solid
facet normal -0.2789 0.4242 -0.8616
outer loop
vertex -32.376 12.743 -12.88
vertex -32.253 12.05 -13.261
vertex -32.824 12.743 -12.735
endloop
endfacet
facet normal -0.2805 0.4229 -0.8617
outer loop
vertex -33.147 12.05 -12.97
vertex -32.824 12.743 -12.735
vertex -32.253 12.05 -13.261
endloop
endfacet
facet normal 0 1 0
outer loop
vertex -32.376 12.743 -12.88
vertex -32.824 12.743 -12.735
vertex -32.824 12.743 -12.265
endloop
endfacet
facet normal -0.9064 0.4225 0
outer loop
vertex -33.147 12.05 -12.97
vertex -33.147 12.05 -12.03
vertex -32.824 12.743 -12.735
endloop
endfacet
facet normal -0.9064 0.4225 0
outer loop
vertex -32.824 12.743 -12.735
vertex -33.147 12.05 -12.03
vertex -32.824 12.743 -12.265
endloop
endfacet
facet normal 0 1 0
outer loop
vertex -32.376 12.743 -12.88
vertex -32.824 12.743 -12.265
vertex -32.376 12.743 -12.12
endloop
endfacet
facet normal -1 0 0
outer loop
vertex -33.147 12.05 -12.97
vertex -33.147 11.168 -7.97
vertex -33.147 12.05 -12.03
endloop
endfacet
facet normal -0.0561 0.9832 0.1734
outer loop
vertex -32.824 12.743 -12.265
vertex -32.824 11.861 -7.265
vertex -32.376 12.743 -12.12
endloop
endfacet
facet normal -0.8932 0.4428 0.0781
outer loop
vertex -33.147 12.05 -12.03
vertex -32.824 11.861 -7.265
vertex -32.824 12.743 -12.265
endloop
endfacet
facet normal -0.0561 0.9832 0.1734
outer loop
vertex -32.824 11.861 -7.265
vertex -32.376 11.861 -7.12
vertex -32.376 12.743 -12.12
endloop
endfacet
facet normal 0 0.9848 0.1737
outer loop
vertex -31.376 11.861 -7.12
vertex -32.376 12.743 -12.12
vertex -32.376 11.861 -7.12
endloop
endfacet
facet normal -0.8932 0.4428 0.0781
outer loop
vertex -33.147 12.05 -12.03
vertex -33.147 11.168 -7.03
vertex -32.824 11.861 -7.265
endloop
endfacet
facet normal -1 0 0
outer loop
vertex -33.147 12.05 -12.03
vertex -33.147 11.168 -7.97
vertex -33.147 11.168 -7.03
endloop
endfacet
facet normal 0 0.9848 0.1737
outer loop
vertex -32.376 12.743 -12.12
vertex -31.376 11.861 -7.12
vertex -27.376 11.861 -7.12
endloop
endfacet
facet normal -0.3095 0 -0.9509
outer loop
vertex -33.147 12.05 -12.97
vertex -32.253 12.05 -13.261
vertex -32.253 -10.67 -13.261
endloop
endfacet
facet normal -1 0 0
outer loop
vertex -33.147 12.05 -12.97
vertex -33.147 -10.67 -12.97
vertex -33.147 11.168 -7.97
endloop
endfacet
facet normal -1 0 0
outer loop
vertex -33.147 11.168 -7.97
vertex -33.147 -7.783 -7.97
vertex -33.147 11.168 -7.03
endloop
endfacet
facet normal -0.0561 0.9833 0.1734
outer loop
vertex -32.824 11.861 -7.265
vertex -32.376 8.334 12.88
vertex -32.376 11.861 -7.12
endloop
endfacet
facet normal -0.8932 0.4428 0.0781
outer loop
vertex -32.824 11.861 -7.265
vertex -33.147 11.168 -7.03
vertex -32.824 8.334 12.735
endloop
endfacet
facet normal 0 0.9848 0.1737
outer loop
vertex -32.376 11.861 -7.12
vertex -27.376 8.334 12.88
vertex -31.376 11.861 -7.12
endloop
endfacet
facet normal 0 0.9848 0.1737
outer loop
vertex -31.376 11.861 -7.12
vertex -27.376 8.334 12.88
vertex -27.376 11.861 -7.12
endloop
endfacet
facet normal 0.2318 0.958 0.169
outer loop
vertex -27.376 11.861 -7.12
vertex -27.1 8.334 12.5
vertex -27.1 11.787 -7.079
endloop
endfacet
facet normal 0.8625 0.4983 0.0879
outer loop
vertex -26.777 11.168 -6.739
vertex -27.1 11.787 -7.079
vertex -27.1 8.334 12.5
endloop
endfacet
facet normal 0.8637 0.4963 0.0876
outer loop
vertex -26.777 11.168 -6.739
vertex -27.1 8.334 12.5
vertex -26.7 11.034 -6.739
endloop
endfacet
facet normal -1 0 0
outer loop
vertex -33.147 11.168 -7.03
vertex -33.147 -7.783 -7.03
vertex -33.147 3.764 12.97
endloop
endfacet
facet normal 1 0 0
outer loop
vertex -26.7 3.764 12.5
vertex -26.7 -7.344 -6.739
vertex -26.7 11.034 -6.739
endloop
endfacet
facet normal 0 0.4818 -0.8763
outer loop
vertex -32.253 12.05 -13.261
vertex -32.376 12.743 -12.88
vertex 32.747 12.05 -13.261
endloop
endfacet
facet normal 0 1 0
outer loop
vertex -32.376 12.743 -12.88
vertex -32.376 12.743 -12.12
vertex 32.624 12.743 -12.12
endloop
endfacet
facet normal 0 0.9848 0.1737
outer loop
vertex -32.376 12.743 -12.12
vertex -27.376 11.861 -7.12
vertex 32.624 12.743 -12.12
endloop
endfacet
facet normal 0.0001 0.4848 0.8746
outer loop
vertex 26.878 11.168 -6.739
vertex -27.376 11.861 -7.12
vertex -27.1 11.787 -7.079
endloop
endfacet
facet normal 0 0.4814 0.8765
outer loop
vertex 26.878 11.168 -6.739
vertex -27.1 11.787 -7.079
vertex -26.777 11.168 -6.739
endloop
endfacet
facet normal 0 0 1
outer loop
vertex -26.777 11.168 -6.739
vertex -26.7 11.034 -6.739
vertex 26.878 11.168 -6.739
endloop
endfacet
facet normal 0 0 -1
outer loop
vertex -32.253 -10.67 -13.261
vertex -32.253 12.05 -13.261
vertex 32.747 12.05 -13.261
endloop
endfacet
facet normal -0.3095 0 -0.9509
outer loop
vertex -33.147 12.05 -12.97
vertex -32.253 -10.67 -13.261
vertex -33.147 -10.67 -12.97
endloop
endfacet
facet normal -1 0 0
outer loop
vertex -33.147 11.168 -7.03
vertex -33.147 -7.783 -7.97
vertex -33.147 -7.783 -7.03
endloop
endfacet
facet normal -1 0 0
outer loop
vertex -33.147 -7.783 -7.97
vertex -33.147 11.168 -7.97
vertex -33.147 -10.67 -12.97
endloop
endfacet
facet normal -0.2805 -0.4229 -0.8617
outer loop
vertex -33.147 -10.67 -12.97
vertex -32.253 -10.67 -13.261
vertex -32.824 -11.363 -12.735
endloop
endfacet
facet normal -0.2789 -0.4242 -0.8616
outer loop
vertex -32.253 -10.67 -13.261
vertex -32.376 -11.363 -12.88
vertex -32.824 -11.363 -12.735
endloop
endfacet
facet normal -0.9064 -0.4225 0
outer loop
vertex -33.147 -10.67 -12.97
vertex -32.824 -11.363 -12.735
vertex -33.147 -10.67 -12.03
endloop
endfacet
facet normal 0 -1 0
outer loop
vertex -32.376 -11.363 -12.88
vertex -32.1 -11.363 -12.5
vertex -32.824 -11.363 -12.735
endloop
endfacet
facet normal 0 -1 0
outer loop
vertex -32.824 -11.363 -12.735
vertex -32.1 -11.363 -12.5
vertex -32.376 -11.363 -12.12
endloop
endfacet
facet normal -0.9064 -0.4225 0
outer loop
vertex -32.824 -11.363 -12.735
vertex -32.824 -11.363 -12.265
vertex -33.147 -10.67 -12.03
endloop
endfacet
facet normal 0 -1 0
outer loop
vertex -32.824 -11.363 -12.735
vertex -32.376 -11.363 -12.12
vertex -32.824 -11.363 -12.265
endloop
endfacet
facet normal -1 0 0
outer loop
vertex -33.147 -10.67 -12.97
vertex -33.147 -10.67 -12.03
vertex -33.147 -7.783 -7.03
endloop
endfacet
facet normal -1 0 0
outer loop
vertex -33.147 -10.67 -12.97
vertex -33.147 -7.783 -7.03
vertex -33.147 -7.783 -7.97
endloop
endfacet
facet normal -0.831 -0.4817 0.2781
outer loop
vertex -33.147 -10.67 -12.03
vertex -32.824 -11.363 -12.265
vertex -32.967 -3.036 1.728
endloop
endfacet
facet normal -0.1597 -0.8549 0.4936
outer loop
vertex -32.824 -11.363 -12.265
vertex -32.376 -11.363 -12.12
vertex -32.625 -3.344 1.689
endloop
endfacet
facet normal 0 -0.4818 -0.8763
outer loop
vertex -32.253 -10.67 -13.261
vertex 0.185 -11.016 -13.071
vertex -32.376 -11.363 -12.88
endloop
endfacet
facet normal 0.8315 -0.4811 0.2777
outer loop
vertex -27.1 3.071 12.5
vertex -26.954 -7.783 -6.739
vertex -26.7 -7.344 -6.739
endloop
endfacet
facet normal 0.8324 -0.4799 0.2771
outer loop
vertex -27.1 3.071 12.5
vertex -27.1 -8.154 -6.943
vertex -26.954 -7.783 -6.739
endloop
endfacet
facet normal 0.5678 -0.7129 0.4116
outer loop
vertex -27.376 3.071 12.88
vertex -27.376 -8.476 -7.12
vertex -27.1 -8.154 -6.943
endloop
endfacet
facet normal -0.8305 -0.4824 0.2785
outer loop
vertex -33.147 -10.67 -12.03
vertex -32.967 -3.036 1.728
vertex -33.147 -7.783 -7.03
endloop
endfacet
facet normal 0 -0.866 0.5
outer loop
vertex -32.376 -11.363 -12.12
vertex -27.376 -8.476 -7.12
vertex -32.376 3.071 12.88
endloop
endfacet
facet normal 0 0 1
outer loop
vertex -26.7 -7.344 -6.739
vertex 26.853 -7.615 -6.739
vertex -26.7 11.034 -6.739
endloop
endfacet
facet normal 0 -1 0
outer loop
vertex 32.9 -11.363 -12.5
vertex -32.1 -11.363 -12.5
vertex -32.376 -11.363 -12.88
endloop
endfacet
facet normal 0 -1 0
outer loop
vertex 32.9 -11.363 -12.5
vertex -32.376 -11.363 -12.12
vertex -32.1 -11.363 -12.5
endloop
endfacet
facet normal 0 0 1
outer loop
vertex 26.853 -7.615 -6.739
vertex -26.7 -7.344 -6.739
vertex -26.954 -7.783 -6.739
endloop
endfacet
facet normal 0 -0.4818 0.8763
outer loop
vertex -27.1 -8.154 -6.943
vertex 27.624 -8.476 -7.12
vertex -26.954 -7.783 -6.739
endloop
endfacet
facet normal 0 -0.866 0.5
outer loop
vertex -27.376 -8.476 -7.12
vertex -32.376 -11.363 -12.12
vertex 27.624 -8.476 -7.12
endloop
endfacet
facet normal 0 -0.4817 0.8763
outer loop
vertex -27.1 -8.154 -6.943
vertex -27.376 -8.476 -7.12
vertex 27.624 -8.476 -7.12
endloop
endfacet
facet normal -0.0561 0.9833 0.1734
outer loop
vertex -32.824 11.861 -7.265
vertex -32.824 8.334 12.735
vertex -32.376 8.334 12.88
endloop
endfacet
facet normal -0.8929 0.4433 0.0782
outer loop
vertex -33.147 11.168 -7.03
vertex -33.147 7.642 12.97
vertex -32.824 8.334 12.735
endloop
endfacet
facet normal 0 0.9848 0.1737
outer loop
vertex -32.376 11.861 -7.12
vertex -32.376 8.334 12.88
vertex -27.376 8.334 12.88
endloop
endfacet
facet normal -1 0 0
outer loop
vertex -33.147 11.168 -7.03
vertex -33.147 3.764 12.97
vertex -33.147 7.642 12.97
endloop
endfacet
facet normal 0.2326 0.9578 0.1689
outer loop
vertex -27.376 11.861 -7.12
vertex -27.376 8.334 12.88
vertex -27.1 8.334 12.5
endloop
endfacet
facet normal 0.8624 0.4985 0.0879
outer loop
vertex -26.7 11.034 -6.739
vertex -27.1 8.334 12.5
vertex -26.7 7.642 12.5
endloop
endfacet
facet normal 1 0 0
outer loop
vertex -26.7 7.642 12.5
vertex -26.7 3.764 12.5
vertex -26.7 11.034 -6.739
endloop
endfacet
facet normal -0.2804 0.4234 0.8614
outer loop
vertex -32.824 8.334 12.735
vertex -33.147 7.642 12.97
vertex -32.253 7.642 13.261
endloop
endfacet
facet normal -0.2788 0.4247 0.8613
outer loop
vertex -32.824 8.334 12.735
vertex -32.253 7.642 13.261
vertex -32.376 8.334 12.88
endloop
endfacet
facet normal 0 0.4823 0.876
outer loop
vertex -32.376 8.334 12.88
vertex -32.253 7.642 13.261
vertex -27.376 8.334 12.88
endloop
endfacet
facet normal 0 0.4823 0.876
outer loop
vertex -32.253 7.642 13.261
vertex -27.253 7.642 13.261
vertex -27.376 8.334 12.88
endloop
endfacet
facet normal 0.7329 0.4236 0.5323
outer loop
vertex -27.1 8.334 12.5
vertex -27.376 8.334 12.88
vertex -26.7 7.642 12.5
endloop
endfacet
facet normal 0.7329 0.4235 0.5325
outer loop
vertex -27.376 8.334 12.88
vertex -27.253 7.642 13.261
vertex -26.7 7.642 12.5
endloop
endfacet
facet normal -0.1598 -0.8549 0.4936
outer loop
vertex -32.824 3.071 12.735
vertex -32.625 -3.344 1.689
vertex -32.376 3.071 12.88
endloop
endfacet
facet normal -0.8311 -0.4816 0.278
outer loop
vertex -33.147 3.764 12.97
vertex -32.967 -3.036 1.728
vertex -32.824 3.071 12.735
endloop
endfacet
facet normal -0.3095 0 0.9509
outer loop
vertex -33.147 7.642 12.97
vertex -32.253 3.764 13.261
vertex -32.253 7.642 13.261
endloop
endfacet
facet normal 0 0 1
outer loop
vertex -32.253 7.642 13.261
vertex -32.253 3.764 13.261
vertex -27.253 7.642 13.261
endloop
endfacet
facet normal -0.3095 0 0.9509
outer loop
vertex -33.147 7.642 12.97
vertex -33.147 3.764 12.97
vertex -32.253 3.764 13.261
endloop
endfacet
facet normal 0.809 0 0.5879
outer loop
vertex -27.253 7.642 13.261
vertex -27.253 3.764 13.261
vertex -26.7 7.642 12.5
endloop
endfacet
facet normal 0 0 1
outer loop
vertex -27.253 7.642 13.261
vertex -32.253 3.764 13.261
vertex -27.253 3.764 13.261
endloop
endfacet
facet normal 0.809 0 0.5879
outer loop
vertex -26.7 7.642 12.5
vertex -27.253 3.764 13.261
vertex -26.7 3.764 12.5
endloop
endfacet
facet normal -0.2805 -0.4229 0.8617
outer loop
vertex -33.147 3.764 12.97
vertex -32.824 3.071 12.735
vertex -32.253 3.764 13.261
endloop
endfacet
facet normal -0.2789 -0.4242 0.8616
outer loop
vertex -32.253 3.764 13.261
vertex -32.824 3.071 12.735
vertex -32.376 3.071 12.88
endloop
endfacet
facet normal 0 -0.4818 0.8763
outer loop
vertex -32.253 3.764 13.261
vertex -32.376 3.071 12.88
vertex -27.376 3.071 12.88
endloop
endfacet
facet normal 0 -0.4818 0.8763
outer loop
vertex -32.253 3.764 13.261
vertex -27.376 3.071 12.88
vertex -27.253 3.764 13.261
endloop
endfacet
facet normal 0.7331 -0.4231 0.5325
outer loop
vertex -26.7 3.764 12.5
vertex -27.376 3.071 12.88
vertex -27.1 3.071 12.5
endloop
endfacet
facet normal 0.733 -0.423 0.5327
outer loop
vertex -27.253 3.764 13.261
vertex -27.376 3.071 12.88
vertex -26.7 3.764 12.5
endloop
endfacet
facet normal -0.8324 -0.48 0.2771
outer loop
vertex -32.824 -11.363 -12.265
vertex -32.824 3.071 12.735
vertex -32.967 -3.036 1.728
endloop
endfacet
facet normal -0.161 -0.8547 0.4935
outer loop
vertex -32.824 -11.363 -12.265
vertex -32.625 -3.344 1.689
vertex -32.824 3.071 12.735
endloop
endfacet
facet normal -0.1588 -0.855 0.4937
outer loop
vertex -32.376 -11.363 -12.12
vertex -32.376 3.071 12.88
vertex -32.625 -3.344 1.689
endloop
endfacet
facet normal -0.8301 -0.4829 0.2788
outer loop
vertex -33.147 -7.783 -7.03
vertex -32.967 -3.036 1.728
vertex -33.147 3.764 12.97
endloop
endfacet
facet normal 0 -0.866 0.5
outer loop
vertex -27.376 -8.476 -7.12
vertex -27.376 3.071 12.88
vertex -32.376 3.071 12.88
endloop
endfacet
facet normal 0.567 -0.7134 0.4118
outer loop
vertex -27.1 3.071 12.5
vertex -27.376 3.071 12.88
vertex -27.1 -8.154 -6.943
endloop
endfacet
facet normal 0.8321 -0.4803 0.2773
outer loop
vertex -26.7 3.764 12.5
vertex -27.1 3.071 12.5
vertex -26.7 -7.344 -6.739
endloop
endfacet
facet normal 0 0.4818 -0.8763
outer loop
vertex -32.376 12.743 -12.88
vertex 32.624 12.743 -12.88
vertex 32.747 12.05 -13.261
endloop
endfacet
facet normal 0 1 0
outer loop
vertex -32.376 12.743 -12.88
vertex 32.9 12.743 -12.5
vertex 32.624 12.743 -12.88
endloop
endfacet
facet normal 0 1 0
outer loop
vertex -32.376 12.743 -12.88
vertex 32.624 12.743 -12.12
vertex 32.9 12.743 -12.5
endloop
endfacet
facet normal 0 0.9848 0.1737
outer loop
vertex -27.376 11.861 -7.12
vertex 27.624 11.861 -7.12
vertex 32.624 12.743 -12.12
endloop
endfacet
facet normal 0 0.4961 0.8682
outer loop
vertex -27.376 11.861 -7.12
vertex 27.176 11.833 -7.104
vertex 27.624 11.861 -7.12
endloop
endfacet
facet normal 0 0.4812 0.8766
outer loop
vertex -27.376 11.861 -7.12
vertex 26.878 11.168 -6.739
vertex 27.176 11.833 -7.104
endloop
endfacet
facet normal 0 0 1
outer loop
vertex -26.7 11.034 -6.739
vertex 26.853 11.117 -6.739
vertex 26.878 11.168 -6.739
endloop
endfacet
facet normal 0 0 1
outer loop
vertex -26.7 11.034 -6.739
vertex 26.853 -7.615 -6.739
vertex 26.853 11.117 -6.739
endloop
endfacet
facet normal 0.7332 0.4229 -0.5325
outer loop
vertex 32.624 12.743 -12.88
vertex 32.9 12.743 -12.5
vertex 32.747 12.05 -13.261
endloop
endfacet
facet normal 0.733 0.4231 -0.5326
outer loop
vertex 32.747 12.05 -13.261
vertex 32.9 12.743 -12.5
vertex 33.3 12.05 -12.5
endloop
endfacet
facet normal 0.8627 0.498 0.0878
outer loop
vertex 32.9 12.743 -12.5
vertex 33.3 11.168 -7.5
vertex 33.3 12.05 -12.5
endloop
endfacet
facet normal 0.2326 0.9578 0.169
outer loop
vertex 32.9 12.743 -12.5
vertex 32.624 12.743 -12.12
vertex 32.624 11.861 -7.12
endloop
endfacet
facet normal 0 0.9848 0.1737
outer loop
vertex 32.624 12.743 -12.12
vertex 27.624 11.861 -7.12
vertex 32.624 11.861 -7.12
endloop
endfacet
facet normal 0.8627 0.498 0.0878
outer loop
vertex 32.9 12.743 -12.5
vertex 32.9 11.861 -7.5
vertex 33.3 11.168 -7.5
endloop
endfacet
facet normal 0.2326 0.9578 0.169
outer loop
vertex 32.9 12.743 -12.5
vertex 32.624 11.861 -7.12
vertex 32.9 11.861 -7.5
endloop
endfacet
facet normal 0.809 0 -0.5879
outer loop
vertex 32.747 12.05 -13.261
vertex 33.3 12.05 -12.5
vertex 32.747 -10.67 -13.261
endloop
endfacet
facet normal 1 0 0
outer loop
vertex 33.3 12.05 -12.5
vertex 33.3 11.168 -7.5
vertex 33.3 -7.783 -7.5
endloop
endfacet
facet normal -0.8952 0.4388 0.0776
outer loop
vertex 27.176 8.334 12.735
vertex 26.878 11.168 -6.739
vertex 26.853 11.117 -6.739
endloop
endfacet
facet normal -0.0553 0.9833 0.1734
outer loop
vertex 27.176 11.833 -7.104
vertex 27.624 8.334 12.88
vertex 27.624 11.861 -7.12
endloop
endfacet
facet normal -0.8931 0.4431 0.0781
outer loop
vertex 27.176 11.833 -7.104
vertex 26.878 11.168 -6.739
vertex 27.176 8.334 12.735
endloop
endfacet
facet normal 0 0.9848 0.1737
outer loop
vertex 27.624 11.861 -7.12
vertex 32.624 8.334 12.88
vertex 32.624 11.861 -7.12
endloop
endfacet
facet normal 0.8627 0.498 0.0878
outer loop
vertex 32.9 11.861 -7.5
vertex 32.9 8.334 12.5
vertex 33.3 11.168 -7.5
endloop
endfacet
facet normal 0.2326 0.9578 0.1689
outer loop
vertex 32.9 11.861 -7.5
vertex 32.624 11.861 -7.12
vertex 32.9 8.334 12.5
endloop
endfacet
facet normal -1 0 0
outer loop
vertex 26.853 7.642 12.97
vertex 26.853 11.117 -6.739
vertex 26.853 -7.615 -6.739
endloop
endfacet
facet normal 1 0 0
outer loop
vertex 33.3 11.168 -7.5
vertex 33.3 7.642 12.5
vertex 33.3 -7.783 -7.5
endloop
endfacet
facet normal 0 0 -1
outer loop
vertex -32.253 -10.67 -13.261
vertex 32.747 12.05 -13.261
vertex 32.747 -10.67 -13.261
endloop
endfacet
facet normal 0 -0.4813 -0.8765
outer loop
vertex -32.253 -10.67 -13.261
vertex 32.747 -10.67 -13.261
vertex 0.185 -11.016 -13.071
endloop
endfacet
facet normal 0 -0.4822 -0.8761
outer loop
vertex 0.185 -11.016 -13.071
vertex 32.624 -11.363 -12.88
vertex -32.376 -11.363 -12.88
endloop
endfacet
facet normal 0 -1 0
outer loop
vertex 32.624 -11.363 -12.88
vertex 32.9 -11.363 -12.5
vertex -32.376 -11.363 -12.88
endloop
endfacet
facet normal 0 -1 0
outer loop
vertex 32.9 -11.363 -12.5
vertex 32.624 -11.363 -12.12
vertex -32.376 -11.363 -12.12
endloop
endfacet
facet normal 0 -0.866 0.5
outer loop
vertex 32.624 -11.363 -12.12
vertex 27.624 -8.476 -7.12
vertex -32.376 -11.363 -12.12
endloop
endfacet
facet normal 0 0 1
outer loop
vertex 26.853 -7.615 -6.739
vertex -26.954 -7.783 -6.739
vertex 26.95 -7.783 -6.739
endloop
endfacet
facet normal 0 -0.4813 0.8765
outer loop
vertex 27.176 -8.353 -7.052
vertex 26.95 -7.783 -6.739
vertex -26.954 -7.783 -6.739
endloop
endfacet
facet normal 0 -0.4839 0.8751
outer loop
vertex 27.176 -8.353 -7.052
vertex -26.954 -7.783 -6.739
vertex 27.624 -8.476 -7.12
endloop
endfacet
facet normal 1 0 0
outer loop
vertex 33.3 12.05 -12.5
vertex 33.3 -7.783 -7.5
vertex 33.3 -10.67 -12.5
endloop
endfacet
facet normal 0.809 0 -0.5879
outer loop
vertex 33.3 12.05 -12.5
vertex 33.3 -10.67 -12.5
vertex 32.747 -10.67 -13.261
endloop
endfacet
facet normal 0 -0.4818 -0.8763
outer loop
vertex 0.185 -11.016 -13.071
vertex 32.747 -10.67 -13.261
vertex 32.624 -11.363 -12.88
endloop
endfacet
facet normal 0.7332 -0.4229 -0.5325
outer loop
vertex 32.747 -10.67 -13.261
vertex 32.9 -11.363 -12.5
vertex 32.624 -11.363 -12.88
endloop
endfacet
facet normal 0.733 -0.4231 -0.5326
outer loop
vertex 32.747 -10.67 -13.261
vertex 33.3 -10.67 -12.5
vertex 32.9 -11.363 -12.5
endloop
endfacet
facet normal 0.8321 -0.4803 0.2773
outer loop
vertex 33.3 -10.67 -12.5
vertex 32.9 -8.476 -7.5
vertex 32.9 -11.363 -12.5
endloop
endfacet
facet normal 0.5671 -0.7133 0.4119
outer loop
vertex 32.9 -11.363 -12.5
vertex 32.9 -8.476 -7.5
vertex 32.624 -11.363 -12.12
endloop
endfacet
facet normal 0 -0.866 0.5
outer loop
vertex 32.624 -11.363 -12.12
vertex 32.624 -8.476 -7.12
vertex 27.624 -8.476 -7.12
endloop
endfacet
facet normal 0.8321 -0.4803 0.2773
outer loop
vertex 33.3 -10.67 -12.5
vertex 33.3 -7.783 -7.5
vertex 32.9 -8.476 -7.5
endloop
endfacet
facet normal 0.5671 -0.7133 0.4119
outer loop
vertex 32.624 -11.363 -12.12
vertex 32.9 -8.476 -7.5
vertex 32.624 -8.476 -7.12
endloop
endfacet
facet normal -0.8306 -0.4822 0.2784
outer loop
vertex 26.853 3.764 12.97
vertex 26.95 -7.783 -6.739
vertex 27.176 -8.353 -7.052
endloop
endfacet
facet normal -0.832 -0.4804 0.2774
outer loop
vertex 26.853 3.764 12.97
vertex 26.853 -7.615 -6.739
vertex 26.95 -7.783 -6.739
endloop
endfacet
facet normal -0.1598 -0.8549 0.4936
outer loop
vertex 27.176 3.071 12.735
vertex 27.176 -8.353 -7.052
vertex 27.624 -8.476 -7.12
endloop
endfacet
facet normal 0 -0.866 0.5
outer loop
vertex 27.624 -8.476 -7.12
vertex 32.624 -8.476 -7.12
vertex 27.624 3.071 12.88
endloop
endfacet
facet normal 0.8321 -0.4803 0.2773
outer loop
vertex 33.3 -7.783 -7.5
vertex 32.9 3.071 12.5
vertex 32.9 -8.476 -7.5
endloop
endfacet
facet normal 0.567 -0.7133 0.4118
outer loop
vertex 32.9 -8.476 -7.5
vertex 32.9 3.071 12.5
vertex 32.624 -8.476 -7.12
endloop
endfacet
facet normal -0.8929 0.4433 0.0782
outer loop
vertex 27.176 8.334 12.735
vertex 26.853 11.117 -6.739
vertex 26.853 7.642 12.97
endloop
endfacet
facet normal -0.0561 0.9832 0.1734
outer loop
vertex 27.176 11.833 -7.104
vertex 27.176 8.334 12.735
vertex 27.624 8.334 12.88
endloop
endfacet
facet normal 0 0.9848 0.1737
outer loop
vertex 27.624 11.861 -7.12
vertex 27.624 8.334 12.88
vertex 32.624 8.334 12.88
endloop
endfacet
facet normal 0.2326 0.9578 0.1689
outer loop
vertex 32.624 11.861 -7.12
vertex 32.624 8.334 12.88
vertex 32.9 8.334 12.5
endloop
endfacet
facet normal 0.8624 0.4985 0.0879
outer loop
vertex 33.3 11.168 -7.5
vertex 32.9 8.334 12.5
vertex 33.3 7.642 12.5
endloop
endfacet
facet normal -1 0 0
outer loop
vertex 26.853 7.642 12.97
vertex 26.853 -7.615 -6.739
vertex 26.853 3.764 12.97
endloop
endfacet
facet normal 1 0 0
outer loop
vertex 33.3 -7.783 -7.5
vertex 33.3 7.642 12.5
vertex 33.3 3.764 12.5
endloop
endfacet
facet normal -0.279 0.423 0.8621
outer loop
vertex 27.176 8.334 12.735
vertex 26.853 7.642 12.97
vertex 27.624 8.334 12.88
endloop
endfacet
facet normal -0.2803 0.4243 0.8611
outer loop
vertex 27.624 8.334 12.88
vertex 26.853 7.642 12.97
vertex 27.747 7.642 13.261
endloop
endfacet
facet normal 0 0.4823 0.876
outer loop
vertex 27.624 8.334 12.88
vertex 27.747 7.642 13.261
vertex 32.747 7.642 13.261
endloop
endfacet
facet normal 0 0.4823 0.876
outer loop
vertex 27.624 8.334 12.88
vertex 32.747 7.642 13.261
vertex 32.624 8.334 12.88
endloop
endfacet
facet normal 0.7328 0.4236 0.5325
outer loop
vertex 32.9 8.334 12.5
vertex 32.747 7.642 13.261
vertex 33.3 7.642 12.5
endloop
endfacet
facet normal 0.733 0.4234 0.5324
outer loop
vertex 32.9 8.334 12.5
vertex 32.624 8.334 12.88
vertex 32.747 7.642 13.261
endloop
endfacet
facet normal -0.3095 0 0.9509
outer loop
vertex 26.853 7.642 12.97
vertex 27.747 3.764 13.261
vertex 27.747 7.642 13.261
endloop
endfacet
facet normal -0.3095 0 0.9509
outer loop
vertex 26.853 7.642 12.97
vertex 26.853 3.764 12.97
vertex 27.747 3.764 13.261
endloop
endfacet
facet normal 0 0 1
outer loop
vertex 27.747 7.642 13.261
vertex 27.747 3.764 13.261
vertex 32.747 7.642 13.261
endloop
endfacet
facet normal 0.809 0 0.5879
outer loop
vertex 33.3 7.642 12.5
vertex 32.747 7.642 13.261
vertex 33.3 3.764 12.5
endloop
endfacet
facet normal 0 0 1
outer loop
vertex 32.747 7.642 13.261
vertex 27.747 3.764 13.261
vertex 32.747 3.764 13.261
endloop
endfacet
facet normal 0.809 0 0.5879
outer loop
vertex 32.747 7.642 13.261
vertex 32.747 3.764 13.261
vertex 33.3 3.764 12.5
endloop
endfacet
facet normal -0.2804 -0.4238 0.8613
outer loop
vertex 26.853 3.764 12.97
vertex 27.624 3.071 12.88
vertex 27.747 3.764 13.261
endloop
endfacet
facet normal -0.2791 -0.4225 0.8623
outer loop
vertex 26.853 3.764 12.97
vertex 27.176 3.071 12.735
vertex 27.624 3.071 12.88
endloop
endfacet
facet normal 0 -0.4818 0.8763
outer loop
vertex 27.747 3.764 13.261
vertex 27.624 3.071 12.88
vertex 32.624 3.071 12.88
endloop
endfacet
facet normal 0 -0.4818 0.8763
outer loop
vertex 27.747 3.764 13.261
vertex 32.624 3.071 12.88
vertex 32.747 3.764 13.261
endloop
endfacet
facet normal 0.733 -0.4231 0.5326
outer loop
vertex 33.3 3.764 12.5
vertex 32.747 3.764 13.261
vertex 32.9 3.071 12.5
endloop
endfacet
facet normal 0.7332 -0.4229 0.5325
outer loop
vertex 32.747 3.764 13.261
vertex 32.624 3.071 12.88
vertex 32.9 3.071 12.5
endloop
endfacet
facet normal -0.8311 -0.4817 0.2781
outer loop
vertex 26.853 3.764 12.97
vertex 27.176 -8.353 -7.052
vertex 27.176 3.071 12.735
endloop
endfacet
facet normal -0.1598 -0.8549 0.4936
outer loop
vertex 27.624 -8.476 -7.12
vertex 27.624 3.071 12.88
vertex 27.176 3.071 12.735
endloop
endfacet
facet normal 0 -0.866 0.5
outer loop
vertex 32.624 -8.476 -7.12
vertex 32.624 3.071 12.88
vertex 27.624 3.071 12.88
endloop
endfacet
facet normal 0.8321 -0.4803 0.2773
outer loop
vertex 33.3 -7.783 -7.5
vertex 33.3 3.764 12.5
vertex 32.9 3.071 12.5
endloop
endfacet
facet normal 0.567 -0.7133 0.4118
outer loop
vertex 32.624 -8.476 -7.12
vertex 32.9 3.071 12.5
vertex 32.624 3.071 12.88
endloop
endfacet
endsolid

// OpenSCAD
rotate(90, [1,0,0])
minkowski(){
    difference(){    
    linear_extrude(height=25, center=true)
    difference() {
        square([65, 25], center=true);
        translate([0, 5]) square([55,25], center=true);
    };

    translate([0,0,15])
    rotate(-30, [1,0,0])
    linear_extrude(height=20, center=true)
    square([70,50], center=true);

    translate([0,0,-20])
    rotate(10, [1,0,0])
    linear_extrude(height=20, center=true)
    square([70, 50], center=true);
    };

    sphere(0.8);
}
